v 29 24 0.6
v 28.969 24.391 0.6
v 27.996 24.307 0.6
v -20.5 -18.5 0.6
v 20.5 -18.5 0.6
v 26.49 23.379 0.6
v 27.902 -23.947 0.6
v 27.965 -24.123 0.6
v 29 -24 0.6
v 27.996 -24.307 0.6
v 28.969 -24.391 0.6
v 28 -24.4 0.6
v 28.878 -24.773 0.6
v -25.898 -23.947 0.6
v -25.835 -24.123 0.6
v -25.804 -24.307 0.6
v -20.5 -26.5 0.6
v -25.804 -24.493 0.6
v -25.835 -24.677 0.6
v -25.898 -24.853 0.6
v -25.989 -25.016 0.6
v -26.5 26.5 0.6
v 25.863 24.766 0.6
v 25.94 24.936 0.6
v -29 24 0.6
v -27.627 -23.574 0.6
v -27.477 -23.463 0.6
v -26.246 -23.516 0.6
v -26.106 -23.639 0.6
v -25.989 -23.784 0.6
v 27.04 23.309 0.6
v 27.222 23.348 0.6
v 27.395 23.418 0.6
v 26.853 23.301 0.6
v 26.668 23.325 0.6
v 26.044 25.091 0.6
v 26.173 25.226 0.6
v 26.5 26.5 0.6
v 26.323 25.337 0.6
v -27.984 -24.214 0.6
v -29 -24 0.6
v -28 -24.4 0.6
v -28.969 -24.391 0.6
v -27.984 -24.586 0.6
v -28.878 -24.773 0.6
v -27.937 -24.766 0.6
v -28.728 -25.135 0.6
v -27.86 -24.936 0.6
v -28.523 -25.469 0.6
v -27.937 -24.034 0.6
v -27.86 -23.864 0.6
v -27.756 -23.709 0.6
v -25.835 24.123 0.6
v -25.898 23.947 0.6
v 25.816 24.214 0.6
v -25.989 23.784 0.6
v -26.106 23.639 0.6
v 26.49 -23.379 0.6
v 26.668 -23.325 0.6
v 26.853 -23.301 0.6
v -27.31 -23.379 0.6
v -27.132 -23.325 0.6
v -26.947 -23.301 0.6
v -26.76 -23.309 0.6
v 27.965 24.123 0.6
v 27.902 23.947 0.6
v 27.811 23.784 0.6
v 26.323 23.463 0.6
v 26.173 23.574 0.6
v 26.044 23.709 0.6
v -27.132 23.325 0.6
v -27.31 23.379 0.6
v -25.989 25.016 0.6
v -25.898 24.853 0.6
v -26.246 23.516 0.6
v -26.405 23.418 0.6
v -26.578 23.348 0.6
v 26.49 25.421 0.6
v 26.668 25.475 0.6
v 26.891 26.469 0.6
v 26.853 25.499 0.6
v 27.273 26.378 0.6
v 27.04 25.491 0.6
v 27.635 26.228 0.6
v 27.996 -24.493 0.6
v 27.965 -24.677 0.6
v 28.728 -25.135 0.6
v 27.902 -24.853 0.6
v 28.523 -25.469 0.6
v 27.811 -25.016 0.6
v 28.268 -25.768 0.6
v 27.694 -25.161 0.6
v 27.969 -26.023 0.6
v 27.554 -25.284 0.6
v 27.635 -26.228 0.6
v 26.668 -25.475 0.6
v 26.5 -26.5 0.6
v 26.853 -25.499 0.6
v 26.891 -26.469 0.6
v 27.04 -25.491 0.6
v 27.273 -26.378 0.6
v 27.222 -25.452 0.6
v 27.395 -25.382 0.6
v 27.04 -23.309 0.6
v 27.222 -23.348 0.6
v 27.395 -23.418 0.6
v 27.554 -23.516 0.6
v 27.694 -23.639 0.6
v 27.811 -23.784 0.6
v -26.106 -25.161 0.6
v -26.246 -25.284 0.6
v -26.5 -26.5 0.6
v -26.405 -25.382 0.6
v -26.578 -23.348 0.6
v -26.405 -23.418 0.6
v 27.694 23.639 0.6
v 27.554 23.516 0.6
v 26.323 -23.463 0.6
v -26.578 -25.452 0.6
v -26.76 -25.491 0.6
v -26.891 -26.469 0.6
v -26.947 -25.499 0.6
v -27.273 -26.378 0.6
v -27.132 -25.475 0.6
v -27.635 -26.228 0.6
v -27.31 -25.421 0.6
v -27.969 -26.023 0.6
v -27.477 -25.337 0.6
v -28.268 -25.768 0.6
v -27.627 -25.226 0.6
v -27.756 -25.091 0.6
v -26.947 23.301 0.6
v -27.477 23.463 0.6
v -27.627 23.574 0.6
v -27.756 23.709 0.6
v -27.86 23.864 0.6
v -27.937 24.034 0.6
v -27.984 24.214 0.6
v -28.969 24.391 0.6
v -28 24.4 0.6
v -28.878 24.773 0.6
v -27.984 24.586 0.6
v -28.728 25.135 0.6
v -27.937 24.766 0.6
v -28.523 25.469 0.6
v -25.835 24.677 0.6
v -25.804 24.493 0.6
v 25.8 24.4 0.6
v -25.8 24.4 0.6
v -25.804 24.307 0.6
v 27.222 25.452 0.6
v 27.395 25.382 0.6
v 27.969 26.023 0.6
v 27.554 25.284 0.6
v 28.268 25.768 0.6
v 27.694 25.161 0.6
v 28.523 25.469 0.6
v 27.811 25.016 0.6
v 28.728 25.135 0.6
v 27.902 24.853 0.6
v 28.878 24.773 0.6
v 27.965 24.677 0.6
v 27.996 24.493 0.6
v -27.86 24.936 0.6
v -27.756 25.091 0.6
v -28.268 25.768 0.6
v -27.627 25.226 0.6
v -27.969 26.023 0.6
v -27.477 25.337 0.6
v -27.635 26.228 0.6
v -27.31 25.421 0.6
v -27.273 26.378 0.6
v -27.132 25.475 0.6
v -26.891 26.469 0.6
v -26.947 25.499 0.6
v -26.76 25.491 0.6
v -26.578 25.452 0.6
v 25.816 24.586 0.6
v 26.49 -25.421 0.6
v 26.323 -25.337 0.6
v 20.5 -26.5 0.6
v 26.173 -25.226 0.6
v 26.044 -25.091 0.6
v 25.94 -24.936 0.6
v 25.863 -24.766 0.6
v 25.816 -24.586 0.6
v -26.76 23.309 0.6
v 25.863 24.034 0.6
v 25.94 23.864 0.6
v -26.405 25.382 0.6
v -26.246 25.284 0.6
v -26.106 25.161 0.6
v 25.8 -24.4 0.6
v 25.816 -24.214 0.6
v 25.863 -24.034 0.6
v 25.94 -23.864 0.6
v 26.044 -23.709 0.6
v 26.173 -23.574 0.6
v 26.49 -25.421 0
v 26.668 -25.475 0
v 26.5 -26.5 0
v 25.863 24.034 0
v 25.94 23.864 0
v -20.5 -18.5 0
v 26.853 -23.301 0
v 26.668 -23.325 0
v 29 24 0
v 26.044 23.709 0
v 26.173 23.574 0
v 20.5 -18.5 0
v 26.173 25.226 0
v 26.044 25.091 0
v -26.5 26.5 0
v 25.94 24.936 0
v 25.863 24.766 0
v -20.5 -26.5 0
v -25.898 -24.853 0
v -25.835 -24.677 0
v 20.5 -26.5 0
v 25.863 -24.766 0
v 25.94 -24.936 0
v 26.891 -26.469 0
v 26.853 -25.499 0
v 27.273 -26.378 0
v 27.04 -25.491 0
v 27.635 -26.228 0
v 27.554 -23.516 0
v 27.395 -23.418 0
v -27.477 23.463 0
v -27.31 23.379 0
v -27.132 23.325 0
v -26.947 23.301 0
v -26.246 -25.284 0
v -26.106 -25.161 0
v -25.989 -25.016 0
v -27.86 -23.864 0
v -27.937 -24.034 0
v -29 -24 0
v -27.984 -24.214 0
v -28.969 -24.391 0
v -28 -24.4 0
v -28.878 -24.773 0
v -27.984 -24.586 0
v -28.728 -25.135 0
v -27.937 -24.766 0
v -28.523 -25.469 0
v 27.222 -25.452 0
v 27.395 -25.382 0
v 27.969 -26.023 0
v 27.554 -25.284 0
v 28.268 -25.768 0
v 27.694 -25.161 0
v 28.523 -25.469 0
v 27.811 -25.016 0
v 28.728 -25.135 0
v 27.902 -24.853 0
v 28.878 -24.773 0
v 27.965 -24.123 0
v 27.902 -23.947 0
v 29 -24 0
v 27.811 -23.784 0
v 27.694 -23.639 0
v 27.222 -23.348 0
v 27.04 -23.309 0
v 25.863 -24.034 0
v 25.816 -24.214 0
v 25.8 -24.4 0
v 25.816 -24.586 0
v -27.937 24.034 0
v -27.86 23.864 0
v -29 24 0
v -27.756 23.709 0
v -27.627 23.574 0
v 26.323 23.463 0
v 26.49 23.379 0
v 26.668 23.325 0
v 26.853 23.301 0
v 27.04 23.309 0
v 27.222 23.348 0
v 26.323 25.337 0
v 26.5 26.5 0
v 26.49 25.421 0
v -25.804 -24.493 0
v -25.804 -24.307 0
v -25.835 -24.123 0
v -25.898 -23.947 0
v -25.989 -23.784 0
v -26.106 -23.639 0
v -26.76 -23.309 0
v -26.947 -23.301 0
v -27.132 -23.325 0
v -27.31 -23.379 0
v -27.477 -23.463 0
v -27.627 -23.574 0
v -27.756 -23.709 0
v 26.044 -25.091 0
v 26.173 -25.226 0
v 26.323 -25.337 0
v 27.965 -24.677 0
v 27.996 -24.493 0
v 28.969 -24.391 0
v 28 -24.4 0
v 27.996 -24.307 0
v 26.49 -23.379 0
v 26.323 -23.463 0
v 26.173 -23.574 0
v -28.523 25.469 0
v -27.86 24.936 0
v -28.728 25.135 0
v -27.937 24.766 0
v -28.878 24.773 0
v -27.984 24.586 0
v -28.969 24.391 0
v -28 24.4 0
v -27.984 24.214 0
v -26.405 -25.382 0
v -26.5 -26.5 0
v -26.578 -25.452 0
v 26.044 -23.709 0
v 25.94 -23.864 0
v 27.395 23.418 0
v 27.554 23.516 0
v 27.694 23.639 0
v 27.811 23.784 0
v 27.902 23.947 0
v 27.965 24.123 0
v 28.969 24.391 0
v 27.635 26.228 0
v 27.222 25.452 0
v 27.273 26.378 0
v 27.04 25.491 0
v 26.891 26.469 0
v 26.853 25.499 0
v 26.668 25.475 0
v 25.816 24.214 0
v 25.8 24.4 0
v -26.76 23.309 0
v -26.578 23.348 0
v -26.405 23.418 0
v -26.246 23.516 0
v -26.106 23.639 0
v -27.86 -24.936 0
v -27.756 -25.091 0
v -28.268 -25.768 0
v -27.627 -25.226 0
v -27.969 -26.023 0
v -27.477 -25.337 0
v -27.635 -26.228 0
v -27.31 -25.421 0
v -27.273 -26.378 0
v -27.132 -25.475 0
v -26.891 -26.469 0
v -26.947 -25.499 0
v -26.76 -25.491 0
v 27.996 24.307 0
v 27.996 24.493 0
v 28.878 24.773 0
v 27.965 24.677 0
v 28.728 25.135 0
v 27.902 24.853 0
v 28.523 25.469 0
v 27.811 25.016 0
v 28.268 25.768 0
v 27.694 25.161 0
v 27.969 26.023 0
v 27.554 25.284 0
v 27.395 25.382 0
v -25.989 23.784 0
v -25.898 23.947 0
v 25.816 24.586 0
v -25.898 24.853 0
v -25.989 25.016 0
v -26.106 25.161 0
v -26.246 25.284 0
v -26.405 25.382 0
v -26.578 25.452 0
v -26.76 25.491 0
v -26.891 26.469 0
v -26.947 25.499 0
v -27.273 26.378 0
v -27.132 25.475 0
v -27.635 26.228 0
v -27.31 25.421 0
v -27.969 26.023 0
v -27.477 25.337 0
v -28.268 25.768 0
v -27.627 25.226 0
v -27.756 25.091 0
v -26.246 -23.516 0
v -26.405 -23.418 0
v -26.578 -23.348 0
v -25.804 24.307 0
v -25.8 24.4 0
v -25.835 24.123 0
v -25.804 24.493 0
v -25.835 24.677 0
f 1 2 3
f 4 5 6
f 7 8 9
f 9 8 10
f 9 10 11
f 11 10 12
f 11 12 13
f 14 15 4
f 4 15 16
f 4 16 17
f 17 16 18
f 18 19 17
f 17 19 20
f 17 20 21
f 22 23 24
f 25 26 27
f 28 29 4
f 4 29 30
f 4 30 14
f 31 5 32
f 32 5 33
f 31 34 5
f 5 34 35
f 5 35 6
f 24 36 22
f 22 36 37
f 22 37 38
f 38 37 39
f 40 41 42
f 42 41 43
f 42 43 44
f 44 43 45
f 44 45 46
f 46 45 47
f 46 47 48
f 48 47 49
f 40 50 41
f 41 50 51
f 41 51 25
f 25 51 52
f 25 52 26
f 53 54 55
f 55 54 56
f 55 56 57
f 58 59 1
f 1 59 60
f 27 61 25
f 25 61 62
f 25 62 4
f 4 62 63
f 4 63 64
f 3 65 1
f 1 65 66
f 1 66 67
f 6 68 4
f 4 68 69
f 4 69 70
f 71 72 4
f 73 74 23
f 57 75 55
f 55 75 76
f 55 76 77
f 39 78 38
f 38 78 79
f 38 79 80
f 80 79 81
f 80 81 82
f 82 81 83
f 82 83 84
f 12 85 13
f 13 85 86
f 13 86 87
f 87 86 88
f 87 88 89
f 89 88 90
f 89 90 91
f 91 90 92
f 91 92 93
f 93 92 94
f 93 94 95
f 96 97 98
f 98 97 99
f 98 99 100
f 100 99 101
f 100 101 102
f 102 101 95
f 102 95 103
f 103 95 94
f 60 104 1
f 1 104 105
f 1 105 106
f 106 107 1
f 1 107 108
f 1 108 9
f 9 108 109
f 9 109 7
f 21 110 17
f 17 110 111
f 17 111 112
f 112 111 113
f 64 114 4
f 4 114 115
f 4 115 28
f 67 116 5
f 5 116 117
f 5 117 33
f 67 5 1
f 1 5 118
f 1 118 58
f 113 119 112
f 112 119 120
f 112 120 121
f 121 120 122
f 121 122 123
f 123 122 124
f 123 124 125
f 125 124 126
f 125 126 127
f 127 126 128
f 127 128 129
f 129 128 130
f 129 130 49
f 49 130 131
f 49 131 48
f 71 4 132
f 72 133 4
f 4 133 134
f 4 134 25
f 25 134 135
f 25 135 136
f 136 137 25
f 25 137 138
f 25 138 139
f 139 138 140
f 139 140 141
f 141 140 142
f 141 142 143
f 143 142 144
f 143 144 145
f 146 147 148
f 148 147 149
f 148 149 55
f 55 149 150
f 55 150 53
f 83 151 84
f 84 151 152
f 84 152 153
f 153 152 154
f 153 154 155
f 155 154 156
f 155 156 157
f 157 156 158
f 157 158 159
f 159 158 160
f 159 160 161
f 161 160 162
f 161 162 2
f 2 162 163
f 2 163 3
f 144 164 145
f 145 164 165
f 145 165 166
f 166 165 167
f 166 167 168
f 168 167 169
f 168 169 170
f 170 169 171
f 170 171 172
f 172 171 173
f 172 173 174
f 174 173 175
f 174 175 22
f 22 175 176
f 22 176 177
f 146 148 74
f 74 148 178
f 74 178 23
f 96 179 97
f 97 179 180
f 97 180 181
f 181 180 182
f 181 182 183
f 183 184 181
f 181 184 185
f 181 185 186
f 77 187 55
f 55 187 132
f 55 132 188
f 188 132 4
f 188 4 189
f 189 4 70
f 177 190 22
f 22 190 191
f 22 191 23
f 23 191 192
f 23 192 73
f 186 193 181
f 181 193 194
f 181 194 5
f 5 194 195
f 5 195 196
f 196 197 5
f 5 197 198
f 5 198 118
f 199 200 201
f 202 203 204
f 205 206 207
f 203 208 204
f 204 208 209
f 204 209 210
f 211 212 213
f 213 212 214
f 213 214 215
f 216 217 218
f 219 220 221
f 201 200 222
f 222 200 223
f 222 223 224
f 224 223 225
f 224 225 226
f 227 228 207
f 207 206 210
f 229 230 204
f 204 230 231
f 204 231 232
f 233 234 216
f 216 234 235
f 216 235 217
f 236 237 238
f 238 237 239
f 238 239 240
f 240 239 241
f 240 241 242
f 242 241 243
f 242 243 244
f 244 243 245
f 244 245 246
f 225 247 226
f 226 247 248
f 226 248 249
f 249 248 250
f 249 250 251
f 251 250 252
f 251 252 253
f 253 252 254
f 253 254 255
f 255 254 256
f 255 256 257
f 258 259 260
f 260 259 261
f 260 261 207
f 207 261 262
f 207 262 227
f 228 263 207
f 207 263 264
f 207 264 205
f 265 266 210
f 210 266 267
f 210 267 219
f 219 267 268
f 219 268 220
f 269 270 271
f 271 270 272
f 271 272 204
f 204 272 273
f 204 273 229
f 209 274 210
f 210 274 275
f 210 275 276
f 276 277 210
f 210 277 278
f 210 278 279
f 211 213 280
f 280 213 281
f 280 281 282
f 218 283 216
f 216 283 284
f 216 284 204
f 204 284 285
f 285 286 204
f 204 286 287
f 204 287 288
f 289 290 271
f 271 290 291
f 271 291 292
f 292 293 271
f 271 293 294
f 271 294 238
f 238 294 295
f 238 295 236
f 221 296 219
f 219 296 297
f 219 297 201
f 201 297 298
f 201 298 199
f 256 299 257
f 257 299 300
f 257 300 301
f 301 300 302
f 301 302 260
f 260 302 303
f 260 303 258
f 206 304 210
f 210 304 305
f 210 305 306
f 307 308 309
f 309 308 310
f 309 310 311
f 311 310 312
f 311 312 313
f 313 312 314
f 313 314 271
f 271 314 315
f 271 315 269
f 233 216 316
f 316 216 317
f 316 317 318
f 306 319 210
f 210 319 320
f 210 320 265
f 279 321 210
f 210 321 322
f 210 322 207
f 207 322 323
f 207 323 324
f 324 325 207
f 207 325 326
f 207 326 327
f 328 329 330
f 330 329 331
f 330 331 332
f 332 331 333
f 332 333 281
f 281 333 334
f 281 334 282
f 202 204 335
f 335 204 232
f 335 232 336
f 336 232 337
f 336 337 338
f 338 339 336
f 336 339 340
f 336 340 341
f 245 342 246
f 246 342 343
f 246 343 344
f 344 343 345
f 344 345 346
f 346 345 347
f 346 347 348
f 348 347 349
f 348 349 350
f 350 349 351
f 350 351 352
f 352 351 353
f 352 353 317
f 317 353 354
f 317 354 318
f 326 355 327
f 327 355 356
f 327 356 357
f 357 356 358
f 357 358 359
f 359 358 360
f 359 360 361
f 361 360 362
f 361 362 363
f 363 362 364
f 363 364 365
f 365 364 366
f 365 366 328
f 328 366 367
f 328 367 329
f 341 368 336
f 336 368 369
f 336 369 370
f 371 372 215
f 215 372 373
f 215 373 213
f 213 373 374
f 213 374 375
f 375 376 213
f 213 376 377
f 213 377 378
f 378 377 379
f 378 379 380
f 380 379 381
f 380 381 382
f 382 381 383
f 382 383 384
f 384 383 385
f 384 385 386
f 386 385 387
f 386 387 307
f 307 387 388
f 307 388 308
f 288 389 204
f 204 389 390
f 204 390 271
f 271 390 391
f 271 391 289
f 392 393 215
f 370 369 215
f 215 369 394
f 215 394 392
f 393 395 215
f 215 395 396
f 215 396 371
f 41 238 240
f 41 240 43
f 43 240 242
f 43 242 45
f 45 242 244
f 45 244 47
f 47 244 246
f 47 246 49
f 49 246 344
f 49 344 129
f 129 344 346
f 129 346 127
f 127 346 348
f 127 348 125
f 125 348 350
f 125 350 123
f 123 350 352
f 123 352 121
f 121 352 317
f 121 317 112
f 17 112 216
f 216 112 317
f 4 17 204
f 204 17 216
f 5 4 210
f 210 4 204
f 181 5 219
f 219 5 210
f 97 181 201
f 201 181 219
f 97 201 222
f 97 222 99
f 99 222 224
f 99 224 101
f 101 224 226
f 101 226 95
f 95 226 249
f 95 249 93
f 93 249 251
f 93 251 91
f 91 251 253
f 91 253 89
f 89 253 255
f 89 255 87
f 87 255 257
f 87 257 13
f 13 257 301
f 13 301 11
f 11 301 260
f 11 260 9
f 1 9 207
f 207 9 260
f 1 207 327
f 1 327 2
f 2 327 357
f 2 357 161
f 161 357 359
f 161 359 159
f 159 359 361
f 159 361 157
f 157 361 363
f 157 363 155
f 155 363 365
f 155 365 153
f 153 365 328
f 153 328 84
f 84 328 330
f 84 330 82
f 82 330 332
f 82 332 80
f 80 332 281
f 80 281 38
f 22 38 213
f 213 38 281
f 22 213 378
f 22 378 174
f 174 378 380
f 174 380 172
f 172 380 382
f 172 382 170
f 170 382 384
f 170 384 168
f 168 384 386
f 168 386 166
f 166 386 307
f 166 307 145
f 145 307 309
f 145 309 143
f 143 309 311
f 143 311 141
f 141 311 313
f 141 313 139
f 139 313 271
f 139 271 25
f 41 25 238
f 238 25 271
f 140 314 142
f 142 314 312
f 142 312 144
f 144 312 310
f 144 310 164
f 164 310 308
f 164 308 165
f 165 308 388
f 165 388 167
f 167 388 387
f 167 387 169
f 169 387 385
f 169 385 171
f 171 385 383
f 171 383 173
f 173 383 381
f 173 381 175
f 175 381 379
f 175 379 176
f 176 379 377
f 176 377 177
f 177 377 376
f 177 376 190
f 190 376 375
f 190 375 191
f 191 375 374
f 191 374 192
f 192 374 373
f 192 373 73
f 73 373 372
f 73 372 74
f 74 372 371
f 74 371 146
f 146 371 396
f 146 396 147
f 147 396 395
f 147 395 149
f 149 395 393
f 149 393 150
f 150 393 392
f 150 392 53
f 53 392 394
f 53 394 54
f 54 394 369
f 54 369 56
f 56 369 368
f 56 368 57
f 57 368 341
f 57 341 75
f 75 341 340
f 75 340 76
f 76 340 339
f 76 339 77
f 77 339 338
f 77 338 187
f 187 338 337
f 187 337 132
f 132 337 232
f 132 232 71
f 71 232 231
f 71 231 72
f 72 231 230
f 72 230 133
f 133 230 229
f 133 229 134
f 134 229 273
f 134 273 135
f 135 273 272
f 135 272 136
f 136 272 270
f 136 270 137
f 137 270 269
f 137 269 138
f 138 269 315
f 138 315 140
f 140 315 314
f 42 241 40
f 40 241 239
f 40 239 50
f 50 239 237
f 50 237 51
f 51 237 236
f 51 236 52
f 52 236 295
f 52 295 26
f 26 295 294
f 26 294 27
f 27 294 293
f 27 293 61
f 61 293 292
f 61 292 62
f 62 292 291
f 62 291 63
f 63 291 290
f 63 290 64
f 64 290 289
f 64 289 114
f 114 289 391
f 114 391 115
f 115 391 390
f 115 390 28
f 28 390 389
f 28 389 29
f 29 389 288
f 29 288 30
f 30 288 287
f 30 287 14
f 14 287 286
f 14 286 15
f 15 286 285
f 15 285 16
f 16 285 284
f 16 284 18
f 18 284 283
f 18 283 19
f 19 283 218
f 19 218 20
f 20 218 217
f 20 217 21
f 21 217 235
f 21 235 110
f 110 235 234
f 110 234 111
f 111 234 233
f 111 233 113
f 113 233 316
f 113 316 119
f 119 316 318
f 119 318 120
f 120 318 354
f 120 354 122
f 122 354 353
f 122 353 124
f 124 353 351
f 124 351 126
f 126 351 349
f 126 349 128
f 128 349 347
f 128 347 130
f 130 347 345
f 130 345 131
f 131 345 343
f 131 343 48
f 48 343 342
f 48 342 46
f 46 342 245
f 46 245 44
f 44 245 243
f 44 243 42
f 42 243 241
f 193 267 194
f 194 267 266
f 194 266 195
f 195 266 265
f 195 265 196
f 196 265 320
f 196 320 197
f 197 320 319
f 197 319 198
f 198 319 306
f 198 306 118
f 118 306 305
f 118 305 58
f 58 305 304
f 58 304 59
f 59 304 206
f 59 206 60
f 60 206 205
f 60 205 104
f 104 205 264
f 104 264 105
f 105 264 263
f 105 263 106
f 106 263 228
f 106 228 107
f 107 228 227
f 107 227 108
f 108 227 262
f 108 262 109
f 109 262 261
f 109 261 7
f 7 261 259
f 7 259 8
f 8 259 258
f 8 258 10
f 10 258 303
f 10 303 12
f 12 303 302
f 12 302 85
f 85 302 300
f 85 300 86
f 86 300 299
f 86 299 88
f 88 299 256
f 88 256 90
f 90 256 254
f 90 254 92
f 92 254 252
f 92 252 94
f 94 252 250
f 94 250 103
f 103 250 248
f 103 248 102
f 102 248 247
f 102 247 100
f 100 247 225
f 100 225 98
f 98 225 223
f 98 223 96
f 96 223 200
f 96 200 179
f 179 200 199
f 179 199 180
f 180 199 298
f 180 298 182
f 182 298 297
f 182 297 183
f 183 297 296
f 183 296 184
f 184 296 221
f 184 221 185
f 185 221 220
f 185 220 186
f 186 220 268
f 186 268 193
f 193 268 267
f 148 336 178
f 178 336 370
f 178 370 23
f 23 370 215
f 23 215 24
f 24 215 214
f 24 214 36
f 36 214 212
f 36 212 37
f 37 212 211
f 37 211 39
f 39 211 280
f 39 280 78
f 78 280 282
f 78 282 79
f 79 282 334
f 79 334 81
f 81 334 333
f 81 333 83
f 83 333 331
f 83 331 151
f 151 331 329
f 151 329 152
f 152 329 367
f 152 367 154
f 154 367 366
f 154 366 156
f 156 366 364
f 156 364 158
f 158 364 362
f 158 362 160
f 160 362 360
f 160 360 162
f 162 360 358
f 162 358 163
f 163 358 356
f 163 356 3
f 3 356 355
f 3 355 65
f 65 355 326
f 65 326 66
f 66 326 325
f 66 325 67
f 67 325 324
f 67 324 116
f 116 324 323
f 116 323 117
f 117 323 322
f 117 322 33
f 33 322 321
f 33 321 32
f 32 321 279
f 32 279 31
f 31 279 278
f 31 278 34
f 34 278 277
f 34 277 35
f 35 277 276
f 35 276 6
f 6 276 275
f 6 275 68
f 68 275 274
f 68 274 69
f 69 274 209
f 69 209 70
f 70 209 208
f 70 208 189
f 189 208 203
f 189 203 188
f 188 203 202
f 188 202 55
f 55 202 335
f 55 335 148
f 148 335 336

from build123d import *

# Parameters (mm, degrees)
SKETCH_1_R      = 1.1
EXTRUDE_1_DEPTH = 0.6


with BuildPart() as part:
    # 草图1 → 凸台-拉伸1 (new body)
    with BuildSketch(Plane.XY):
        with BuildLine():
            Line((-26.5, -26.5), (-20.5, -26.5))
            Line((-20.5, -26.5), (-20.5, -18.5))
            Line((-20.5, -18.5), (20.5, -18.5))
            Line((20.5, -18.5), (20.5, -26.5))
            Line((20.5, -26.5), (26.5, -26.5))
            ThreePointArc((26.5, -26.5), (28.267766953, -25.767766953), (29, -24))
            Line((29, -24), (29, 24))
            ThreePointArc((29, 24), (28.267766953, 25.767766953), (26.5, 26.5))
            Line((26.5, 26.5), (-26.5, 26.5))
            ThreePointArc((-26.5, 26.5), (-28.267766953, 25.767766953), (-29, 24))
            Line((-29, 24), (-29, -24))
            ThreePointArc((-29, -24), (-28.267766953, -25.767766953), (-26.5, -26.5))
        make_face()
        with Locations((-26.9, 24.4)):
            Circle(SKETCH_1_R, mode=Mode.SUBTRACT)
        with Locations(Location((-26.9, -24.4, 0), (0, 0, 180))):
            Circle(SKETCH_1_R, mode=Mode.SUBTRACT)
        with Locations((26.9, -24.4)):
            Circle(SKETCH_1_R, mode=Mode.SUBTRACT)
        with Locations(Location((26.9, 24.4, 0), (0, 0, 180))):
            Circle(SKETCH_1_R, mode=Mode.SUBTRACT)
    extrude(amount=EXTRUDE_1_DEPTH)


solid = part.part
